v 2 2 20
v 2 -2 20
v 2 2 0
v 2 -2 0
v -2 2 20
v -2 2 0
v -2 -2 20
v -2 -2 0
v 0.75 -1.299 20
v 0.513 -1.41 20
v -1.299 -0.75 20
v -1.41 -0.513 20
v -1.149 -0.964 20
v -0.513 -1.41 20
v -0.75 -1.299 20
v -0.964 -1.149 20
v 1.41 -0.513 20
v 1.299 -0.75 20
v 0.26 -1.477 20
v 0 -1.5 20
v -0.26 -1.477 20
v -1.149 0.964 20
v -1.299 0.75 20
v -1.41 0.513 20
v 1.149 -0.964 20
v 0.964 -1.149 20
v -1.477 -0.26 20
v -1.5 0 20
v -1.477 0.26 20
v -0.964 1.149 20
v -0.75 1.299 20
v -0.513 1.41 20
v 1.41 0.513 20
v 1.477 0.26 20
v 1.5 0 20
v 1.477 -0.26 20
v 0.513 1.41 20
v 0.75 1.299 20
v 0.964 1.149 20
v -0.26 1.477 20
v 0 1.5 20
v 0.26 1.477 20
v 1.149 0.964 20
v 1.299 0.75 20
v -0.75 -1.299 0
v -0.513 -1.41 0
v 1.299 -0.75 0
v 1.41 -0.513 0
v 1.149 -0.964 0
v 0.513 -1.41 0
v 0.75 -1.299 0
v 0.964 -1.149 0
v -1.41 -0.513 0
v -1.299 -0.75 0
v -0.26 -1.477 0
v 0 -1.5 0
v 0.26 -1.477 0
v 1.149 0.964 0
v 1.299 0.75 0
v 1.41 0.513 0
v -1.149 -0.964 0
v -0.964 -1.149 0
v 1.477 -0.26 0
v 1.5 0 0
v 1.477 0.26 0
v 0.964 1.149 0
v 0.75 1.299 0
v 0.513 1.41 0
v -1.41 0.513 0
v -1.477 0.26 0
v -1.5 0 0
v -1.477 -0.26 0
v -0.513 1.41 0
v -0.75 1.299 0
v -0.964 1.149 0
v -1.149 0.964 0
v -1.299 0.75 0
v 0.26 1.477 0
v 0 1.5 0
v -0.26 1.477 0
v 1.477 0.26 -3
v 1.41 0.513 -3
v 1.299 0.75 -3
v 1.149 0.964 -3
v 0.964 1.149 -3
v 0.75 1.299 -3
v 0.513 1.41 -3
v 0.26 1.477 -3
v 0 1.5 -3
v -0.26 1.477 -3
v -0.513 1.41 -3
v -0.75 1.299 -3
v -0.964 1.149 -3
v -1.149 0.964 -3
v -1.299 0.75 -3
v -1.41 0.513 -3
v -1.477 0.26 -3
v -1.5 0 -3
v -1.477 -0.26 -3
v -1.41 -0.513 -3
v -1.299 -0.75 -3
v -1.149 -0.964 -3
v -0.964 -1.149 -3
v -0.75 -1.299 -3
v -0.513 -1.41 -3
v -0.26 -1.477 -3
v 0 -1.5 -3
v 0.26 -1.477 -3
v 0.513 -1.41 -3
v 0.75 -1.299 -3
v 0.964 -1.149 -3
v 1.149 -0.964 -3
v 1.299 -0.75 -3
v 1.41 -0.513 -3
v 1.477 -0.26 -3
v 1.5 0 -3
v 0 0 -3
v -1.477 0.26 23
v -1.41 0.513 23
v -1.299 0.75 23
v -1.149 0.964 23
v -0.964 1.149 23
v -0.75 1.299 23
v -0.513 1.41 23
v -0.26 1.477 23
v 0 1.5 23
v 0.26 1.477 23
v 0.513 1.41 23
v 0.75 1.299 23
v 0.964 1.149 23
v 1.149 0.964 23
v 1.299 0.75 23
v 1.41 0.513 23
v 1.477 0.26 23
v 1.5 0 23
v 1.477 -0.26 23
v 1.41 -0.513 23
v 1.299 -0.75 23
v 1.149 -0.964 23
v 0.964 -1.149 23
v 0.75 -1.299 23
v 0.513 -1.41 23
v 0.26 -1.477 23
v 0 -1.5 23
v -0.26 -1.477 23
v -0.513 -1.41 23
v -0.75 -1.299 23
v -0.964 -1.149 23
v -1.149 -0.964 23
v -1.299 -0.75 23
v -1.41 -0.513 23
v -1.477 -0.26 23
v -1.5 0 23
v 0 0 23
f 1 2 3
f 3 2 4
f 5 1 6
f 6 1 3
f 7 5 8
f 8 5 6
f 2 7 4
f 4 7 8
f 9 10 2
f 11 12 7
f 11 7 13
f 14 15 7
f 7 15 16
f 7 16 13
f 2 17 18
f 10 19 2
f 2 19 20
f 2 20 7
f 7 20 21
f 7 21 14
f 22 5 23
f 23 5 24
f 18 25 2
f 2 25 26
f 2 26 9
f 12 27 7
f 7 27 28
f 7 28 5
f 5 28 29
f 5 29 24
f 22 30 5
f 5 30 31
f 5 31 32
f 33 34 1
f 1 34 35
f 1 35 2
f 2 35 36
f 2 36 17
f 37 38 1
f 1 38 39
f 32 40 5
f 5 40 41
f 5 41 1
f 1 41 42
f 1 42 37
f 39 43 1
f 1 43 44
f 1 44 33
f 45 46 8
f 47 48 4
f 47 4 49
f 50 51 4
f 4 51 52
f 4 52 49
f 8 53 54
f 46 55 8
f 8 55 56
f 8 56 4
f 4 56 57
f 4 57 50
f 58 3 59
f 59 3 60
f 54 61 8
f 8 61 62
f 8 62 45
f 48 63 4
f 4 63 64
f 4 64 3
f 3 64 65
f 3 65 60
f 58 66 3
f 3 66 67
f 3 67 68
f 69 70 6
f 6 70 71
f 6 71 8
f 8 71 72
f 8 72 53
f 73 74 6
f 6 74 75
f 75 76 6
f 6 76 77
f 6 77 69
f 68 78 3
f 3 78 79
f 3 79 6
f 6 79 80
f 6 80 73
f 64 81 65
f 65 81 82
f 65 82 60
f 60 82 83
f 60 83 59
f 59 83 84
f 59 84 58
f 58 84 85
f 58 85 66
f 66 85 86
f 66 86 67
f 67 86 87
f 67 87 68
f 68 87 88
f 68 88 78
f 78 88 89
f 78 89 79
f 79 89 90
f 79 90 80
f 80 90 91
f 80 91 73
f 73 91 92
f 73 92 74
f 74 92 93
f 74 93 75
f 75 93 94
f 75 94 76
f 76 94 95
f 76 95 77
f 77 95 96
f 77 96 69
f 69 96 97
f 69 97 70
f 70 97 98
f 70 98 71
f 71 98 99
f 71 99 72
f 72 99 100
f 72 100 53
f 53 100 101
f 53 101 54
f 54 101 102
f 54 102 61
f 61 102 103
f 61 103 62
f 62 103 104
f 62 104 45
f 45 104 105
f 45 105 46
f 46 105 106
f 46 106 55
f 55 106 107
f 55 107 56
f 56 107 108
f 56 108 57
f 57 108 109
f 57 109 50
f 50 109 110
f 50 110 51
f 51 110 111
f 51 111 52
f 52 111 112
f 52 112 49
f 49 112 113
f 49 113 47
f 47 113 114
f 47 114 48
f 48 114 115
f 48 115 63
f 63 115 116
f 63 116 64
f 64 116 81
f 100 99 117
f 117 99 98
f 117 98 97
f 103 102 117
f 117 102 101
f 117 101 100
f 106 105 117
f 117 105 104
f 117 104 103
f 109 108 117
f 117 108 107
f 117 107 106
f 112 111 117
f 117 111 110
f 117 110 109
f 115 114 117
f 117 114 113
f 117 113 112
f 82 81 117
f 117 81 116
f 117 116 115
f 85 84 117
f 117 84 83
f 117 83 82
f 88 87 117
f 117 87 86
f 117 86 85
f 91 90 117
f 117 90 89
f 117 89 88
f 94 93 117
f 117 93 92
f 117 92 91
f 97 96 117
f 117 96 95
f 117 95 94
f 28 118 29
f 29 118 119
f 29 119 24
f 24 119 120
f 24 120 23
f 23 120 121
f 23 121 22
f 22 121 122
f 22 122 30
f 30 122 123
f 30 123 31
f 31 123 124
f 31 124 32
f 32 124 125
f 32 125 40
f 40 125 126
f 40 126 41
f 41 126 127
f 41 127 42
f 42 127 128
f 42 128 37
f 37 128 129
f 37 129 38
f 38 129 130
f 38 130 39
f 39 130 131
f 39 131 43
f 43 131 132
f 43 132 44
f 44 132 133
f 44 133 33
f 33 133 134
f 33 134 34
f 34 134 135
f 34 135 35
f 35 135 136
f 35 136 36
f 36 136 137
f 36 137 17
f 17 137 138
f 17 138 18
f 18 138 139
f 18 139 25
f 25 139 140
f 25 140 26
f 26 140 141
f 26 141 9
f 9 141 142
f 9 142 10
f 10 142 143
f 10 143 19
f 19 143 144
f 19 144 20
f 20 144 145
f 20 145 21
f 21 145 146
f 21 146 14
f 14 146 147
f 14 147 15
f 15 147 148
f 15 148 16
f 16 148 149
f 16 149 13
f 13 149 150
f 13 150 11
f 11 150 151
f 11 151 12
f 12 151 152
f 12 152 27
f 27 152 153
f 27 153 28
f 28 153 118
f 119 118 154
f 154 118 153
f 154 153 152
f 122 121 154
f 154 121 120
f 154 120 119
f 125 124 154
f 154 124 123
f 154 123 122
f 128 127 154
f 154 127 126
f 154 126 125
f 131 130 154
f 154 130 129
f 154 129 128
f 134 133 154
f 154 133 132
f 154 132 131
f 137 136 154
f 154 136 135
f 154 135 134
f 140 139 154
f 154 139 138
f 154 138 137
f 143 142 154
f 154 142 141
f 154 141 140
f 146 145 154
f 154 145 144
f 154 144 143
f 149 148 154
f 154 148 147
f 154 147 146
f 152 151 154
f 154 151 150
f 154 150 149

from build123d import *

# Parameters (mm, degrees)
CROQUIS1_W              = 4
CROQUIS1_H              = 4
SALIENTE_EXTRUIR1_DEPTH = 20
CROQUIS2_R              = 1.5
SALIENTE_EXTRUIR2_DEPTH = 3


with BuildPart() as part:
    # Croquis1 → Saliente-Extruir1 (new body)
    with BuildSketch(Plane.XY):
        Rectangle(CROQUIS1_W, CROQUIS1_H)
    extrude(amount=SALIENTE_EXTRUIR1_DEPTH)

    # Croquis2 → Saliente-Extruir2 (add)
    with BuildSketch(Plane(origin=(0, 0, 0), x_dir=(-1, 0, 0), z_dir=(0, 0, -1))):
        Circle(CROQUIS2_R)
    saliente_extruir2 = extrude(amount=SALIENTE_EXTRUIR2_DEPTH)

    # Simetría1: Saliente-Extruir2 across plane
    add(saliente_extruir2.mirror(Plane.XY.offset(10)))


solid = part.part
